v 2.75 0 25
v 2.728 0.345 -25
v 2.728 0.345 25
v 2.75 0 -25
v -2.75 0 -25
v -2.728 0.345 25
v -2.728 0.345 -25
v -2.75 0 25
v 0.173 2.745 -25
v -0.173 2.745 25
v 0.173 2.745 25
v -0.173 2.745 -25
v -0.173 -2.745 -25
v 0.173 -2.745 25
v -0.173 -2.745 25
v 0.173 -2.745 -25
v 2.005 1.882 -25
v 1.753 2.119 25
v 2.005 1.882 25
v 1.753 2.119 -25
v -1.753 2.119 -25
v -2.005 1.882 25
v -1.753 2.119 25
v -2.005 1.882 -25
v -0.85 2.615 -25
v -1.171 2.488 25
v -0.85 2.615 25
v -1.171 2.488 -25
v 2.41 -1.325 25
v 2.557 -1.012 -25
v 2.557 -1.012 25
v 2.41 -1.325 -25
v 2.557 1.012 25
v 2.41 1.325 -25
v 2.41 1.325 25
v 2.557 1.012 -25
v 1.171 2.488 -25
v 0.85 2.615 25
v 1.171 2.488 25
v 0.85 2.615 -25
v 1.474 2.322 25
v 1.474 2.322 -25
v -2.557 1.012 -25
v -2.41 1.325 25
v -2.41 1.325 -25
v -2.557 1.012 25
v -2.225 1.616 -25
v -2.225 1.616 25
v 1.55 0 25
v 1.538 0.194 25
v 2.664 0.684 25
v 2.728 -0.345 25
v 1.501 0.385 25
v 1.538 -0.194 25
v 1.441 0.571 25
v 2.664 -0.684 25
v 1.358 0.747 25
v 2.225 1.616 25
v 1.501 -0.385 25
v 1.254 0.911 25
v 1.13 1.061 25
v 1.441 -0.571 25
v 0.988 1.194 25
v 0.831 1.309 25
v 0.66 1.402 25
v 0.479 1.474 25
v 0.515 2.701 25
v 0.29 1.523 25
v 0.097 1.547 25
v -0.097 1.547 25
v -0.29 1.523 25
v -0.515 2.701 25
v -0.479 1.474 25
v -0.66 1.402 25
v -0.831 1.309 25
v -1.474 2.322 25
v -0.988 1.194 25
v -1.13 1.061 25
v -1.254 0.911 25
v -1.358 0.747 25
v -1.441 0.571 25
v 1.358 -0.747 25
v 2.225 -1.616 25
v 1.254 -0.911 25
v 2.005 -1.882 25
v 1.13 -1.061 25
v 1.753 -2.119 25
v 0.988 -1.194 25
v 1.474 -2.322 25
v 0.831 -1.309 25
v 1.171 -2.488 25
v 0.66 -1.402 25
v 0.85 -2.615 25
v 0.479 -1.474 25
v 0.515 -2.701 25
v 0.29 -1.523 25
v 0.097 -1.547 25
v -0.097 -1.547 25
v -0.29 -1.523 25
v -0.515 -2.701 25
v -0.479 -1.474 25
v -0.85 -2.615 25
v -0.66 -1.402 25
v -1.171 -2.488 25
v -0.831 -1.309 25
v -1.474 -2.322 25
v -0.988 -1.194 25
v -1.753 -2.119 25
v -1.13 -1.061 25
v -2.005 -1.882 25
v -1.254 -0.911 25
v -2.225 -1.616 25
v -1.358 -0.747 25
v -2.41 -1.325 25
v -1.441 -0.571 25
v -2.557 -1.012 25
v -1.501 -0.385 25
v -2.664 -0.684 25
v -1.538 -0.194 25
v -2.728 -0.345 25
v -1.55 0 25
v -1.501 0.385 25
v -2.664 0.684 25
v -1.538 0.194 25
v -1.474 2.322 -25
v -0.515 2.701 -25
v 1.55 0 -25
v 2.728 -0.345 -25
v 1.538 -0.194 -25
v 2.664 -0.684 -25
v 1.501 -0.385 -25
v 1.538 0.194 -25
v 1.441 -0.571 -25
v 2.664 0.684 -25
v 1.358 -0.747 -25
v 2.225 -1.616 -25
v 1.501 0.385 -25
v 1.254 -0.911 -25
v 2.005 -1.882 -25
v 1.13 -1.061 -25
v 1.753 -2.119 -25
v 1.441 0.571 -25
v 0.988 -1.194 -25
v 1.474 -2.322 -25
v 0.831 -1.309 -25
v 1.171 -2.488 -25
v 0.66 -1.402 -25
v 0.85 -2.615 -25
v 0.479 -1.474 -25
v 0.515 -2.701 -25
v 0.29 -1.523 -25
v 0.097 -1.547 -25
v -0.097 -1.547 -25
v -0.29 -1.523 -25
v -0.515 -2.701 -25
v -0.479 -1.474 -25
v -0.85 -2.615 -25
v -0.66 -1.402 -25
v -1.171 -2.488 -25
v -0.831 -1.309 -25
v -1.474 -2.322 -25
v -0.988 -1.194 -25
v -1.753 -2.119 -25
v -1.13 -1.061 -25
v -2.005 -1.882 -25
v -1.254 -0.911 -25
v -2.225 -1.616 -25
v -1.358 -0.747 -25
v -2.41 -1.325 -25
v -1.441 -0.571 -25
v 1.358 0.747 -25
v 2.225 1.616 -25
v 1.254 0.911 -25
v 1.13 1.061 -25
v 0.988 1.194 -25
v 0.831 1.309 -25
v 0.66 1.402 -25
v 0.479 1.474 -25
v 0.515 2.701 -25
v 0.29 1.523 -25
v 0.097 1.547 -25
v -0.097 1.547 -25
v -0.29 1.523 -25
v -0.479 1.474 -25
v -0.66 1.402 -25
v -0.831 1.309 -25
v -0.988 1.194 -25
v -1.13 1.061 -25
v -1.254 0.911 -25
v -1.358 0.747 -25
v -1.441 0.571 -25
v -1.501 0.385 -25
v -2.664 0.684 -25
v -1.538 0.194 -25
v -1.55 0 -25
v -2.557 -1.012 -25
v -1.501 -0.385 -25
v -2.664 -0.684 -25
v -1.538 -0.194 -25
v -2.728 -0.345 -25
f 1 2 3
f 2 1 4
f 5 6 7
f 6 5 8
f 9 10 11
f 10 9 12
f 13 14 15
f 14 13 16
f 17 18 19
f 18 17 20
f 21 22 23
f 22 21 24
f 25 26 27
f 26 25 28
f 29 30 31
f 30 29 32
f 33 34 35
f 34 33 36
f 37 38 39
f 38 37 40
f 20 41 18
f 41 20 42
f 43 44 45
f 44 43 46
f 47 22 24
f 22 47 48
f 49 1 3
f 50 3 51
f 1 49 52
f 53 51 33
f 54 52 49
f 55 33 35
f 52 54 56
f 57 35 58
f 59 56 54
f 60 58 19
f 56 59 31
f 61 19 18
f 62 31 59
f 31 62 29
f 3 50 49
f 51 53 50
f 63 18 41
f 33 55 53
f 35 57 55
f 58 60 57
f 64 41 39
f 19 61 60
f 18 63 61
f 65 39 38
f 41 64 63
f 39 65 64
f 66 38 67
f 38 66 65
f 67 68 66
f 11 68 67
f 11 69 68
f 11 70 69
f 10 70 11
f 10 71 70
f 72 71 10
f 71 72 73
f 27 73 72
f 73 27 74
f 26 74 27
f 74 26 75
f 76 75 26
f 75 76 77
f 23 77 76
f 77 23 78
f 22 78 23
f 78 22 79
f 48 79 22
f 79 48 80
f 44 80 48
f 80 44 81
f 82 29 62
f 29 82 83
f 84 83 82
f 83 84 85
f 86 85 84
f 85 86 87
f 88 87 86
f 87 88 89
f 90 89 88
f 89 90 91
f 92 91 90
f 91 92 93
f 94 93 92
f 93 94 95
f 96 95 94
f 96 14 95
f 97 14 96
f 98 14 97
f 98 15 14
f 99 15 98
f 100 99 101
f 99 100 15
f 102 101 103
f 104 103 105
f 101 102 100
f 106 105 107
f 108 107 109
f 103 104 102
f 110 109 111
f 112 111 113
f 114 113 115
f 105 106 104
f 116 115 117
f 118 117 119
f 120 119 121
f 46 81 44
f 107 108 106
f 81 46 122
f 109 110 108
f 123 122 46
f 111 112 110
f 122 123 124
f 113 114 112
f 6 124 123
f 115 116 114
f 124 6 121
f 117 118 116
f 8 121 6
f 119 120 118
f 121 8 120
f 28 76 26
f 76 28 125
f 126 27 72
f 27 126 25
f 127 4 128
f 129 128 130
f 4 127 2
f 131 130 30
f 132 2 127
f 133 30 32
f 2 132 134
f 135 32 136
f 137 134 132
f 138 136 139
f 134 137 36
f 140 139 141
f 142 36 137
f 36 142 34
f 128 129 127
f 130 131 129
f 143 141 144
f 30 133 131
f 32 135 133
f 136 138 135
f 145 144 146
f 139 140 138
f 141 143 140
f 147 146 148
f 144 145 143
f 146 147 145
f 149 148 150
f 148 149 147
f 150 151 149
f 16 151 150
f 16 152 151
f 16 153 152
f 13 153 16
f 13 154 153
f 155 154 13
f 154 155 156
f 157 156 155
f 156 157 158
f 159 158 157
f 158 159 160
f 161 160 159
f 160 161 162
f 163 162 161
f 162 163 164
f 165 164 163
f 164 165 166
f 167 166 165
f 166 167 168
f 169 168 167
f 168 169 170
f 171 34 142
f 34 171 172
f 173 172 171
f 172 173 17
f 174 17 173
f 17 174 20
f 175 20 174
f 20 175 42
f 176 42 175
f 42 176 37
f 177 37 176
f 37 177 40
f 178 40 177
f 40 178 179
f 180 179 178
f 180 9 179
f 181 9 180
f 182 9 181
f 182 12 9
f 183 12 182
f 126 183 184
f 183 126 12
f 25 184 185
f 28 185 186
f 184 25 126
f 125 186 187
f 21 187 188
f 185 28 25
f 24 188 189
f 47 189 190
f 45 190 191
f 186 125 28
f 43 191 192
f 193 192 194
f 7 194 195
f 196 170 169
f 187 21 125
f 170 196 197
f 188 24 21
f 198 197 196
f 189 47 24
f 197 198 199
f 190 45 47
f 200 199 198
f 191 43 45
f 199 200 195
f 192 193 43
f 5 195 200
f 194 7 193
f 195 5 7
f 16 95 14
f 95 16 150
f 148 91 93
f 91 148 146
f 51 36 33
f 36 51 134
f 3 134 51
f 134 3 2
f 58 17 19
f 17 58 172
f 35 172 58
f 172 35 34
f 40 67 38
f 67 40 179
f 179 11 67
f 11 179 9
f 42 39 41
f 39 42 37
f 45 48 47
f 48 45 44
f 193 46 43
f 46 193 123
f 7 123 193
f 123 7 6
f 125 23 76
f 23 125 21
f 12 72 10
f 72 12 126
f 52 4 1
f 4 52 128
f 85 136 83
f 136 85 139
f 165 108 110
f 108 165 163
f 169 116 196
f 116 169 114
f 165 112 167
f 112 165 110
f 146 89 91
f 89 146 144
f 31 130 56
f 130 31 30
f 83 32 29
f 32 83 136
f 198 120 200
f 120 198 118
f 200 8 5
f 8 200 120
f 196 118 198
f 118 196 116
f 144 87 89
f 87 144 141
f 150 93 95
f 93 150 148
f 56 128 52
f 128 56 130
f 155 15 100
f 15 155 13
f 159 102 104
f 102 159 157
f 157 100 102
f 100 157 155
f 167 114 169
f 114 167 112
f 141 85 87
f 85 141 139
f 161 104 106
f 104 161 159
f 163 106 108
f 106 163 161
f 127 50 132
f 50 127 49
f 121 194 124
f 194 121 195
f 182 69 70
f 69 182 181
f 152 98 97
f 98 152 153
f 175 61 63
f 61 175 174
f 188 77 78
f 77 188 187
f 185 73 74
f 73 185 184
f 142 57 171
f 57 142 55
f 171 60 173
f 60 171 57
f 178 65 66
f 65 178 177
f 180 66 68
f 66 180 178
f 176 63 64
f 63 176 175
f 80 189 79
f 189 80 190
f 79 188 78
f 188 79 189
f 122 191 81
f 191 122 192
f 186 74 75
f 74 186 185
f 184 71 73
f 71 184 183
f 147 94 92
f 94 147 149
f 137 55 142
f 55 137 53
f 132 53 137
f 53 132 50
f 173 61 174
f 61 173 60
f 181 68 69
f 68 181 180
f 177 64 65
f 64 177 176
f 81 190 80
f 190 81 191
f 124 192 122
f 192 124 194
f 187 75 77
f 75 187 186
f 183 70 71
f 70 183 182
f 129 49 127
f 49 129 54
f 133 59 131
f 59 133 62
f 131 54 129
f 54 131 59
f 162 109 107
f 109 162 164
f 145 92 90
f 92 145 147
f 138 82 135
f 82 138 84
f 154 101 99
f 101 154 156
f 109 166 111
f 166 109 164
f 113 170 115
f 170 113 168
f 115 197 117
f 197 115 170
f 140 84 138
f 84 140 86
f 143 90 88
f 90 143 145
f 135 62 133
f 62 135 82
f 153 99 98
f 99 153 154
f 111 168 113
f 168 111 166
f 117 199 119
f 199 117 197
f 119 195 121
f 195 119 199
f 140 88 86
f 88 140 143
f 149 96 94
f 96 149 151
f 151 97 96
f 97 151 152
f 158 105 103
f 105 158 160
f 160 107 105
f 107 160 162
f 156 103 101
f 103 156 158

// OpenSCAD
$fn = 50;


difference() {
	union() {
		translate(v = [0, 0, -25.0000000000]) {
			cylinder(h = 50, r = 2.7500000000);
		}
	}
	union() {
		translate(v = [0, 0, -100.0000000000]) {
			cylinder(h = 200, r = 1.5500000000);
		}
	}
}
